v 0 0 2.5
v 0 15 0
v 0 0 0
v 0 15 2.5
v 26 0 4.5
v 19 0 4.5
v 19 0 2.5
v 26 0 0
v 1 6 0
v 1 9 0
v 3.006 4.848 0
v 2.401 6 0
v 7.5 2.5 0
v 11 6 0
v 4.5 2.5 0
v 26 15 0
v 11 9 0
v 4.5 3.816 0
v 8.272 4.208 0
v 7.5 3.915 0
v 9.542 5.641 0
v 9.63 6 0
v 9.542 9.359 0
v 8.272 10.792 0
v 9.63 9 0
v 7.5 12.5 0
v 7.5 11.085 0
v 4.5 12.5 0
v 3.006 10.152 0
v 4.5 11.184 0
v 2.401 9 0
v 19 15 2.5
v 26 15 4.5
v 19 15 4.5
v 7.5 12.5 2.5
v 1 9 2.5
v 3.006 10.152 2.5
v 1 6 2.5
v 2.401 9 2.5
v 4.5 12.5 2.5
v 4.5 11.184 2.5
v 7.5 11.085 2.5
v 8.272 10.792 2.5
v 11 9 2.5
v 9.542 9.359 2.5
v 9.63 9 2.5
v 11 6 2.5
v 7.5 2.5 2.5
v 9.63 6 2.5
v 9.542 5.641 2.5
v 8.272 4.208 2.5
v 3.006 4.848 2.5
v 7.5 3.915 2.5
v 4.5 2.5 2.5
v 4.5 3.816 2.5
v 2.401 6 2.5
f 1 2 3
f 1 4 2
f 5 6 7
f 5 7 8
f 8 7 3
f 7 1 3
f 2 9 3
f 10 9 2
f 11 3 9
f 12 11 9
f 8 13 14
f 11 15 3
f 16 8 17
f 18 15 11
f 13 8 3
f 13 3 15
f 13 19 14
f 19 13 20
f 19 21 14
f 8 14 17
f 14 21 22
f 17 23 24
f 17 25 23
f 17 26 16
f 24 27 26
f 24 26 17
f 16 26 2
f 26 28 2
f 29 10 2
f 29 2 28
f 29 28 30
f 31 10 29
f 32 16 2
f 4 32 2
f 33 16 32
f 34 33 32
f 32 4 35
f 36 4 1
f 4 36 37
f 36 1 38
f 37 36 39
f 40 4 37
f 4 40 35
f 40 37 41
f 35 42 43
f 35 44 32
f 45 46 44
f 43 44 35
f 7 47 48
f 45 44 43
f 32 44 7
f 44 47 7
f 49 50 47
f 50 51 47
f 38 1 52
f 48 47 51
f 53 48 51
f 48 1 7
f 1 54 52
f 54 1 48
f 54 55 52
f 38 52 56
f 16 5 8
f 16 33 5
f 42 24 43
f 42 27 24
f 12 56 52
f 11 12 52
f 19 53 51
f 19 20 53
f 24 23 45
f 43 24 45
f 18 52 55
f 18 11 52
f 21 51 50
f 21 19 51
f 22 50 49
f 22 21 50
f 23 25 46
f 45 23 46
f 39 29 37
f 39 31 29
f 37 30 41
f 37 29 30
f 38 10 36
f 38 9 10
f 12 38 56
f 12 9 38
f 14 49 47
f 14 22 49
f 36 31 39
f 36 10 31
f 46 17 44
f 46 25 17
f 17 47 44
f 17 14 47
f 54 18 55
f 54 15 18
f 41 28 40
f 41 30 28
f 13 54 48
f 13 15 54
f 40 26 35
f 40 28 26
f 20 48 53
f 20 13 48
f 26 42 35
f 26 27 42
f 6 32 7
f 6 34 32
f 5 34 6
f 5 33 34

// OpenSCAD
difference() {
    cube([26, 15, 2.5]);
    translate([6, 7.5, 0]) cylinder(r=4, 2.5);
    translate([1, 6, 0]) cube([10, 3, 2.5]);
    translate([4.5, 2.5, 0]) cube([3, 10, 2.5]);
}
translate([19, 0, 0]) cube([7, 15, 4.5]);
